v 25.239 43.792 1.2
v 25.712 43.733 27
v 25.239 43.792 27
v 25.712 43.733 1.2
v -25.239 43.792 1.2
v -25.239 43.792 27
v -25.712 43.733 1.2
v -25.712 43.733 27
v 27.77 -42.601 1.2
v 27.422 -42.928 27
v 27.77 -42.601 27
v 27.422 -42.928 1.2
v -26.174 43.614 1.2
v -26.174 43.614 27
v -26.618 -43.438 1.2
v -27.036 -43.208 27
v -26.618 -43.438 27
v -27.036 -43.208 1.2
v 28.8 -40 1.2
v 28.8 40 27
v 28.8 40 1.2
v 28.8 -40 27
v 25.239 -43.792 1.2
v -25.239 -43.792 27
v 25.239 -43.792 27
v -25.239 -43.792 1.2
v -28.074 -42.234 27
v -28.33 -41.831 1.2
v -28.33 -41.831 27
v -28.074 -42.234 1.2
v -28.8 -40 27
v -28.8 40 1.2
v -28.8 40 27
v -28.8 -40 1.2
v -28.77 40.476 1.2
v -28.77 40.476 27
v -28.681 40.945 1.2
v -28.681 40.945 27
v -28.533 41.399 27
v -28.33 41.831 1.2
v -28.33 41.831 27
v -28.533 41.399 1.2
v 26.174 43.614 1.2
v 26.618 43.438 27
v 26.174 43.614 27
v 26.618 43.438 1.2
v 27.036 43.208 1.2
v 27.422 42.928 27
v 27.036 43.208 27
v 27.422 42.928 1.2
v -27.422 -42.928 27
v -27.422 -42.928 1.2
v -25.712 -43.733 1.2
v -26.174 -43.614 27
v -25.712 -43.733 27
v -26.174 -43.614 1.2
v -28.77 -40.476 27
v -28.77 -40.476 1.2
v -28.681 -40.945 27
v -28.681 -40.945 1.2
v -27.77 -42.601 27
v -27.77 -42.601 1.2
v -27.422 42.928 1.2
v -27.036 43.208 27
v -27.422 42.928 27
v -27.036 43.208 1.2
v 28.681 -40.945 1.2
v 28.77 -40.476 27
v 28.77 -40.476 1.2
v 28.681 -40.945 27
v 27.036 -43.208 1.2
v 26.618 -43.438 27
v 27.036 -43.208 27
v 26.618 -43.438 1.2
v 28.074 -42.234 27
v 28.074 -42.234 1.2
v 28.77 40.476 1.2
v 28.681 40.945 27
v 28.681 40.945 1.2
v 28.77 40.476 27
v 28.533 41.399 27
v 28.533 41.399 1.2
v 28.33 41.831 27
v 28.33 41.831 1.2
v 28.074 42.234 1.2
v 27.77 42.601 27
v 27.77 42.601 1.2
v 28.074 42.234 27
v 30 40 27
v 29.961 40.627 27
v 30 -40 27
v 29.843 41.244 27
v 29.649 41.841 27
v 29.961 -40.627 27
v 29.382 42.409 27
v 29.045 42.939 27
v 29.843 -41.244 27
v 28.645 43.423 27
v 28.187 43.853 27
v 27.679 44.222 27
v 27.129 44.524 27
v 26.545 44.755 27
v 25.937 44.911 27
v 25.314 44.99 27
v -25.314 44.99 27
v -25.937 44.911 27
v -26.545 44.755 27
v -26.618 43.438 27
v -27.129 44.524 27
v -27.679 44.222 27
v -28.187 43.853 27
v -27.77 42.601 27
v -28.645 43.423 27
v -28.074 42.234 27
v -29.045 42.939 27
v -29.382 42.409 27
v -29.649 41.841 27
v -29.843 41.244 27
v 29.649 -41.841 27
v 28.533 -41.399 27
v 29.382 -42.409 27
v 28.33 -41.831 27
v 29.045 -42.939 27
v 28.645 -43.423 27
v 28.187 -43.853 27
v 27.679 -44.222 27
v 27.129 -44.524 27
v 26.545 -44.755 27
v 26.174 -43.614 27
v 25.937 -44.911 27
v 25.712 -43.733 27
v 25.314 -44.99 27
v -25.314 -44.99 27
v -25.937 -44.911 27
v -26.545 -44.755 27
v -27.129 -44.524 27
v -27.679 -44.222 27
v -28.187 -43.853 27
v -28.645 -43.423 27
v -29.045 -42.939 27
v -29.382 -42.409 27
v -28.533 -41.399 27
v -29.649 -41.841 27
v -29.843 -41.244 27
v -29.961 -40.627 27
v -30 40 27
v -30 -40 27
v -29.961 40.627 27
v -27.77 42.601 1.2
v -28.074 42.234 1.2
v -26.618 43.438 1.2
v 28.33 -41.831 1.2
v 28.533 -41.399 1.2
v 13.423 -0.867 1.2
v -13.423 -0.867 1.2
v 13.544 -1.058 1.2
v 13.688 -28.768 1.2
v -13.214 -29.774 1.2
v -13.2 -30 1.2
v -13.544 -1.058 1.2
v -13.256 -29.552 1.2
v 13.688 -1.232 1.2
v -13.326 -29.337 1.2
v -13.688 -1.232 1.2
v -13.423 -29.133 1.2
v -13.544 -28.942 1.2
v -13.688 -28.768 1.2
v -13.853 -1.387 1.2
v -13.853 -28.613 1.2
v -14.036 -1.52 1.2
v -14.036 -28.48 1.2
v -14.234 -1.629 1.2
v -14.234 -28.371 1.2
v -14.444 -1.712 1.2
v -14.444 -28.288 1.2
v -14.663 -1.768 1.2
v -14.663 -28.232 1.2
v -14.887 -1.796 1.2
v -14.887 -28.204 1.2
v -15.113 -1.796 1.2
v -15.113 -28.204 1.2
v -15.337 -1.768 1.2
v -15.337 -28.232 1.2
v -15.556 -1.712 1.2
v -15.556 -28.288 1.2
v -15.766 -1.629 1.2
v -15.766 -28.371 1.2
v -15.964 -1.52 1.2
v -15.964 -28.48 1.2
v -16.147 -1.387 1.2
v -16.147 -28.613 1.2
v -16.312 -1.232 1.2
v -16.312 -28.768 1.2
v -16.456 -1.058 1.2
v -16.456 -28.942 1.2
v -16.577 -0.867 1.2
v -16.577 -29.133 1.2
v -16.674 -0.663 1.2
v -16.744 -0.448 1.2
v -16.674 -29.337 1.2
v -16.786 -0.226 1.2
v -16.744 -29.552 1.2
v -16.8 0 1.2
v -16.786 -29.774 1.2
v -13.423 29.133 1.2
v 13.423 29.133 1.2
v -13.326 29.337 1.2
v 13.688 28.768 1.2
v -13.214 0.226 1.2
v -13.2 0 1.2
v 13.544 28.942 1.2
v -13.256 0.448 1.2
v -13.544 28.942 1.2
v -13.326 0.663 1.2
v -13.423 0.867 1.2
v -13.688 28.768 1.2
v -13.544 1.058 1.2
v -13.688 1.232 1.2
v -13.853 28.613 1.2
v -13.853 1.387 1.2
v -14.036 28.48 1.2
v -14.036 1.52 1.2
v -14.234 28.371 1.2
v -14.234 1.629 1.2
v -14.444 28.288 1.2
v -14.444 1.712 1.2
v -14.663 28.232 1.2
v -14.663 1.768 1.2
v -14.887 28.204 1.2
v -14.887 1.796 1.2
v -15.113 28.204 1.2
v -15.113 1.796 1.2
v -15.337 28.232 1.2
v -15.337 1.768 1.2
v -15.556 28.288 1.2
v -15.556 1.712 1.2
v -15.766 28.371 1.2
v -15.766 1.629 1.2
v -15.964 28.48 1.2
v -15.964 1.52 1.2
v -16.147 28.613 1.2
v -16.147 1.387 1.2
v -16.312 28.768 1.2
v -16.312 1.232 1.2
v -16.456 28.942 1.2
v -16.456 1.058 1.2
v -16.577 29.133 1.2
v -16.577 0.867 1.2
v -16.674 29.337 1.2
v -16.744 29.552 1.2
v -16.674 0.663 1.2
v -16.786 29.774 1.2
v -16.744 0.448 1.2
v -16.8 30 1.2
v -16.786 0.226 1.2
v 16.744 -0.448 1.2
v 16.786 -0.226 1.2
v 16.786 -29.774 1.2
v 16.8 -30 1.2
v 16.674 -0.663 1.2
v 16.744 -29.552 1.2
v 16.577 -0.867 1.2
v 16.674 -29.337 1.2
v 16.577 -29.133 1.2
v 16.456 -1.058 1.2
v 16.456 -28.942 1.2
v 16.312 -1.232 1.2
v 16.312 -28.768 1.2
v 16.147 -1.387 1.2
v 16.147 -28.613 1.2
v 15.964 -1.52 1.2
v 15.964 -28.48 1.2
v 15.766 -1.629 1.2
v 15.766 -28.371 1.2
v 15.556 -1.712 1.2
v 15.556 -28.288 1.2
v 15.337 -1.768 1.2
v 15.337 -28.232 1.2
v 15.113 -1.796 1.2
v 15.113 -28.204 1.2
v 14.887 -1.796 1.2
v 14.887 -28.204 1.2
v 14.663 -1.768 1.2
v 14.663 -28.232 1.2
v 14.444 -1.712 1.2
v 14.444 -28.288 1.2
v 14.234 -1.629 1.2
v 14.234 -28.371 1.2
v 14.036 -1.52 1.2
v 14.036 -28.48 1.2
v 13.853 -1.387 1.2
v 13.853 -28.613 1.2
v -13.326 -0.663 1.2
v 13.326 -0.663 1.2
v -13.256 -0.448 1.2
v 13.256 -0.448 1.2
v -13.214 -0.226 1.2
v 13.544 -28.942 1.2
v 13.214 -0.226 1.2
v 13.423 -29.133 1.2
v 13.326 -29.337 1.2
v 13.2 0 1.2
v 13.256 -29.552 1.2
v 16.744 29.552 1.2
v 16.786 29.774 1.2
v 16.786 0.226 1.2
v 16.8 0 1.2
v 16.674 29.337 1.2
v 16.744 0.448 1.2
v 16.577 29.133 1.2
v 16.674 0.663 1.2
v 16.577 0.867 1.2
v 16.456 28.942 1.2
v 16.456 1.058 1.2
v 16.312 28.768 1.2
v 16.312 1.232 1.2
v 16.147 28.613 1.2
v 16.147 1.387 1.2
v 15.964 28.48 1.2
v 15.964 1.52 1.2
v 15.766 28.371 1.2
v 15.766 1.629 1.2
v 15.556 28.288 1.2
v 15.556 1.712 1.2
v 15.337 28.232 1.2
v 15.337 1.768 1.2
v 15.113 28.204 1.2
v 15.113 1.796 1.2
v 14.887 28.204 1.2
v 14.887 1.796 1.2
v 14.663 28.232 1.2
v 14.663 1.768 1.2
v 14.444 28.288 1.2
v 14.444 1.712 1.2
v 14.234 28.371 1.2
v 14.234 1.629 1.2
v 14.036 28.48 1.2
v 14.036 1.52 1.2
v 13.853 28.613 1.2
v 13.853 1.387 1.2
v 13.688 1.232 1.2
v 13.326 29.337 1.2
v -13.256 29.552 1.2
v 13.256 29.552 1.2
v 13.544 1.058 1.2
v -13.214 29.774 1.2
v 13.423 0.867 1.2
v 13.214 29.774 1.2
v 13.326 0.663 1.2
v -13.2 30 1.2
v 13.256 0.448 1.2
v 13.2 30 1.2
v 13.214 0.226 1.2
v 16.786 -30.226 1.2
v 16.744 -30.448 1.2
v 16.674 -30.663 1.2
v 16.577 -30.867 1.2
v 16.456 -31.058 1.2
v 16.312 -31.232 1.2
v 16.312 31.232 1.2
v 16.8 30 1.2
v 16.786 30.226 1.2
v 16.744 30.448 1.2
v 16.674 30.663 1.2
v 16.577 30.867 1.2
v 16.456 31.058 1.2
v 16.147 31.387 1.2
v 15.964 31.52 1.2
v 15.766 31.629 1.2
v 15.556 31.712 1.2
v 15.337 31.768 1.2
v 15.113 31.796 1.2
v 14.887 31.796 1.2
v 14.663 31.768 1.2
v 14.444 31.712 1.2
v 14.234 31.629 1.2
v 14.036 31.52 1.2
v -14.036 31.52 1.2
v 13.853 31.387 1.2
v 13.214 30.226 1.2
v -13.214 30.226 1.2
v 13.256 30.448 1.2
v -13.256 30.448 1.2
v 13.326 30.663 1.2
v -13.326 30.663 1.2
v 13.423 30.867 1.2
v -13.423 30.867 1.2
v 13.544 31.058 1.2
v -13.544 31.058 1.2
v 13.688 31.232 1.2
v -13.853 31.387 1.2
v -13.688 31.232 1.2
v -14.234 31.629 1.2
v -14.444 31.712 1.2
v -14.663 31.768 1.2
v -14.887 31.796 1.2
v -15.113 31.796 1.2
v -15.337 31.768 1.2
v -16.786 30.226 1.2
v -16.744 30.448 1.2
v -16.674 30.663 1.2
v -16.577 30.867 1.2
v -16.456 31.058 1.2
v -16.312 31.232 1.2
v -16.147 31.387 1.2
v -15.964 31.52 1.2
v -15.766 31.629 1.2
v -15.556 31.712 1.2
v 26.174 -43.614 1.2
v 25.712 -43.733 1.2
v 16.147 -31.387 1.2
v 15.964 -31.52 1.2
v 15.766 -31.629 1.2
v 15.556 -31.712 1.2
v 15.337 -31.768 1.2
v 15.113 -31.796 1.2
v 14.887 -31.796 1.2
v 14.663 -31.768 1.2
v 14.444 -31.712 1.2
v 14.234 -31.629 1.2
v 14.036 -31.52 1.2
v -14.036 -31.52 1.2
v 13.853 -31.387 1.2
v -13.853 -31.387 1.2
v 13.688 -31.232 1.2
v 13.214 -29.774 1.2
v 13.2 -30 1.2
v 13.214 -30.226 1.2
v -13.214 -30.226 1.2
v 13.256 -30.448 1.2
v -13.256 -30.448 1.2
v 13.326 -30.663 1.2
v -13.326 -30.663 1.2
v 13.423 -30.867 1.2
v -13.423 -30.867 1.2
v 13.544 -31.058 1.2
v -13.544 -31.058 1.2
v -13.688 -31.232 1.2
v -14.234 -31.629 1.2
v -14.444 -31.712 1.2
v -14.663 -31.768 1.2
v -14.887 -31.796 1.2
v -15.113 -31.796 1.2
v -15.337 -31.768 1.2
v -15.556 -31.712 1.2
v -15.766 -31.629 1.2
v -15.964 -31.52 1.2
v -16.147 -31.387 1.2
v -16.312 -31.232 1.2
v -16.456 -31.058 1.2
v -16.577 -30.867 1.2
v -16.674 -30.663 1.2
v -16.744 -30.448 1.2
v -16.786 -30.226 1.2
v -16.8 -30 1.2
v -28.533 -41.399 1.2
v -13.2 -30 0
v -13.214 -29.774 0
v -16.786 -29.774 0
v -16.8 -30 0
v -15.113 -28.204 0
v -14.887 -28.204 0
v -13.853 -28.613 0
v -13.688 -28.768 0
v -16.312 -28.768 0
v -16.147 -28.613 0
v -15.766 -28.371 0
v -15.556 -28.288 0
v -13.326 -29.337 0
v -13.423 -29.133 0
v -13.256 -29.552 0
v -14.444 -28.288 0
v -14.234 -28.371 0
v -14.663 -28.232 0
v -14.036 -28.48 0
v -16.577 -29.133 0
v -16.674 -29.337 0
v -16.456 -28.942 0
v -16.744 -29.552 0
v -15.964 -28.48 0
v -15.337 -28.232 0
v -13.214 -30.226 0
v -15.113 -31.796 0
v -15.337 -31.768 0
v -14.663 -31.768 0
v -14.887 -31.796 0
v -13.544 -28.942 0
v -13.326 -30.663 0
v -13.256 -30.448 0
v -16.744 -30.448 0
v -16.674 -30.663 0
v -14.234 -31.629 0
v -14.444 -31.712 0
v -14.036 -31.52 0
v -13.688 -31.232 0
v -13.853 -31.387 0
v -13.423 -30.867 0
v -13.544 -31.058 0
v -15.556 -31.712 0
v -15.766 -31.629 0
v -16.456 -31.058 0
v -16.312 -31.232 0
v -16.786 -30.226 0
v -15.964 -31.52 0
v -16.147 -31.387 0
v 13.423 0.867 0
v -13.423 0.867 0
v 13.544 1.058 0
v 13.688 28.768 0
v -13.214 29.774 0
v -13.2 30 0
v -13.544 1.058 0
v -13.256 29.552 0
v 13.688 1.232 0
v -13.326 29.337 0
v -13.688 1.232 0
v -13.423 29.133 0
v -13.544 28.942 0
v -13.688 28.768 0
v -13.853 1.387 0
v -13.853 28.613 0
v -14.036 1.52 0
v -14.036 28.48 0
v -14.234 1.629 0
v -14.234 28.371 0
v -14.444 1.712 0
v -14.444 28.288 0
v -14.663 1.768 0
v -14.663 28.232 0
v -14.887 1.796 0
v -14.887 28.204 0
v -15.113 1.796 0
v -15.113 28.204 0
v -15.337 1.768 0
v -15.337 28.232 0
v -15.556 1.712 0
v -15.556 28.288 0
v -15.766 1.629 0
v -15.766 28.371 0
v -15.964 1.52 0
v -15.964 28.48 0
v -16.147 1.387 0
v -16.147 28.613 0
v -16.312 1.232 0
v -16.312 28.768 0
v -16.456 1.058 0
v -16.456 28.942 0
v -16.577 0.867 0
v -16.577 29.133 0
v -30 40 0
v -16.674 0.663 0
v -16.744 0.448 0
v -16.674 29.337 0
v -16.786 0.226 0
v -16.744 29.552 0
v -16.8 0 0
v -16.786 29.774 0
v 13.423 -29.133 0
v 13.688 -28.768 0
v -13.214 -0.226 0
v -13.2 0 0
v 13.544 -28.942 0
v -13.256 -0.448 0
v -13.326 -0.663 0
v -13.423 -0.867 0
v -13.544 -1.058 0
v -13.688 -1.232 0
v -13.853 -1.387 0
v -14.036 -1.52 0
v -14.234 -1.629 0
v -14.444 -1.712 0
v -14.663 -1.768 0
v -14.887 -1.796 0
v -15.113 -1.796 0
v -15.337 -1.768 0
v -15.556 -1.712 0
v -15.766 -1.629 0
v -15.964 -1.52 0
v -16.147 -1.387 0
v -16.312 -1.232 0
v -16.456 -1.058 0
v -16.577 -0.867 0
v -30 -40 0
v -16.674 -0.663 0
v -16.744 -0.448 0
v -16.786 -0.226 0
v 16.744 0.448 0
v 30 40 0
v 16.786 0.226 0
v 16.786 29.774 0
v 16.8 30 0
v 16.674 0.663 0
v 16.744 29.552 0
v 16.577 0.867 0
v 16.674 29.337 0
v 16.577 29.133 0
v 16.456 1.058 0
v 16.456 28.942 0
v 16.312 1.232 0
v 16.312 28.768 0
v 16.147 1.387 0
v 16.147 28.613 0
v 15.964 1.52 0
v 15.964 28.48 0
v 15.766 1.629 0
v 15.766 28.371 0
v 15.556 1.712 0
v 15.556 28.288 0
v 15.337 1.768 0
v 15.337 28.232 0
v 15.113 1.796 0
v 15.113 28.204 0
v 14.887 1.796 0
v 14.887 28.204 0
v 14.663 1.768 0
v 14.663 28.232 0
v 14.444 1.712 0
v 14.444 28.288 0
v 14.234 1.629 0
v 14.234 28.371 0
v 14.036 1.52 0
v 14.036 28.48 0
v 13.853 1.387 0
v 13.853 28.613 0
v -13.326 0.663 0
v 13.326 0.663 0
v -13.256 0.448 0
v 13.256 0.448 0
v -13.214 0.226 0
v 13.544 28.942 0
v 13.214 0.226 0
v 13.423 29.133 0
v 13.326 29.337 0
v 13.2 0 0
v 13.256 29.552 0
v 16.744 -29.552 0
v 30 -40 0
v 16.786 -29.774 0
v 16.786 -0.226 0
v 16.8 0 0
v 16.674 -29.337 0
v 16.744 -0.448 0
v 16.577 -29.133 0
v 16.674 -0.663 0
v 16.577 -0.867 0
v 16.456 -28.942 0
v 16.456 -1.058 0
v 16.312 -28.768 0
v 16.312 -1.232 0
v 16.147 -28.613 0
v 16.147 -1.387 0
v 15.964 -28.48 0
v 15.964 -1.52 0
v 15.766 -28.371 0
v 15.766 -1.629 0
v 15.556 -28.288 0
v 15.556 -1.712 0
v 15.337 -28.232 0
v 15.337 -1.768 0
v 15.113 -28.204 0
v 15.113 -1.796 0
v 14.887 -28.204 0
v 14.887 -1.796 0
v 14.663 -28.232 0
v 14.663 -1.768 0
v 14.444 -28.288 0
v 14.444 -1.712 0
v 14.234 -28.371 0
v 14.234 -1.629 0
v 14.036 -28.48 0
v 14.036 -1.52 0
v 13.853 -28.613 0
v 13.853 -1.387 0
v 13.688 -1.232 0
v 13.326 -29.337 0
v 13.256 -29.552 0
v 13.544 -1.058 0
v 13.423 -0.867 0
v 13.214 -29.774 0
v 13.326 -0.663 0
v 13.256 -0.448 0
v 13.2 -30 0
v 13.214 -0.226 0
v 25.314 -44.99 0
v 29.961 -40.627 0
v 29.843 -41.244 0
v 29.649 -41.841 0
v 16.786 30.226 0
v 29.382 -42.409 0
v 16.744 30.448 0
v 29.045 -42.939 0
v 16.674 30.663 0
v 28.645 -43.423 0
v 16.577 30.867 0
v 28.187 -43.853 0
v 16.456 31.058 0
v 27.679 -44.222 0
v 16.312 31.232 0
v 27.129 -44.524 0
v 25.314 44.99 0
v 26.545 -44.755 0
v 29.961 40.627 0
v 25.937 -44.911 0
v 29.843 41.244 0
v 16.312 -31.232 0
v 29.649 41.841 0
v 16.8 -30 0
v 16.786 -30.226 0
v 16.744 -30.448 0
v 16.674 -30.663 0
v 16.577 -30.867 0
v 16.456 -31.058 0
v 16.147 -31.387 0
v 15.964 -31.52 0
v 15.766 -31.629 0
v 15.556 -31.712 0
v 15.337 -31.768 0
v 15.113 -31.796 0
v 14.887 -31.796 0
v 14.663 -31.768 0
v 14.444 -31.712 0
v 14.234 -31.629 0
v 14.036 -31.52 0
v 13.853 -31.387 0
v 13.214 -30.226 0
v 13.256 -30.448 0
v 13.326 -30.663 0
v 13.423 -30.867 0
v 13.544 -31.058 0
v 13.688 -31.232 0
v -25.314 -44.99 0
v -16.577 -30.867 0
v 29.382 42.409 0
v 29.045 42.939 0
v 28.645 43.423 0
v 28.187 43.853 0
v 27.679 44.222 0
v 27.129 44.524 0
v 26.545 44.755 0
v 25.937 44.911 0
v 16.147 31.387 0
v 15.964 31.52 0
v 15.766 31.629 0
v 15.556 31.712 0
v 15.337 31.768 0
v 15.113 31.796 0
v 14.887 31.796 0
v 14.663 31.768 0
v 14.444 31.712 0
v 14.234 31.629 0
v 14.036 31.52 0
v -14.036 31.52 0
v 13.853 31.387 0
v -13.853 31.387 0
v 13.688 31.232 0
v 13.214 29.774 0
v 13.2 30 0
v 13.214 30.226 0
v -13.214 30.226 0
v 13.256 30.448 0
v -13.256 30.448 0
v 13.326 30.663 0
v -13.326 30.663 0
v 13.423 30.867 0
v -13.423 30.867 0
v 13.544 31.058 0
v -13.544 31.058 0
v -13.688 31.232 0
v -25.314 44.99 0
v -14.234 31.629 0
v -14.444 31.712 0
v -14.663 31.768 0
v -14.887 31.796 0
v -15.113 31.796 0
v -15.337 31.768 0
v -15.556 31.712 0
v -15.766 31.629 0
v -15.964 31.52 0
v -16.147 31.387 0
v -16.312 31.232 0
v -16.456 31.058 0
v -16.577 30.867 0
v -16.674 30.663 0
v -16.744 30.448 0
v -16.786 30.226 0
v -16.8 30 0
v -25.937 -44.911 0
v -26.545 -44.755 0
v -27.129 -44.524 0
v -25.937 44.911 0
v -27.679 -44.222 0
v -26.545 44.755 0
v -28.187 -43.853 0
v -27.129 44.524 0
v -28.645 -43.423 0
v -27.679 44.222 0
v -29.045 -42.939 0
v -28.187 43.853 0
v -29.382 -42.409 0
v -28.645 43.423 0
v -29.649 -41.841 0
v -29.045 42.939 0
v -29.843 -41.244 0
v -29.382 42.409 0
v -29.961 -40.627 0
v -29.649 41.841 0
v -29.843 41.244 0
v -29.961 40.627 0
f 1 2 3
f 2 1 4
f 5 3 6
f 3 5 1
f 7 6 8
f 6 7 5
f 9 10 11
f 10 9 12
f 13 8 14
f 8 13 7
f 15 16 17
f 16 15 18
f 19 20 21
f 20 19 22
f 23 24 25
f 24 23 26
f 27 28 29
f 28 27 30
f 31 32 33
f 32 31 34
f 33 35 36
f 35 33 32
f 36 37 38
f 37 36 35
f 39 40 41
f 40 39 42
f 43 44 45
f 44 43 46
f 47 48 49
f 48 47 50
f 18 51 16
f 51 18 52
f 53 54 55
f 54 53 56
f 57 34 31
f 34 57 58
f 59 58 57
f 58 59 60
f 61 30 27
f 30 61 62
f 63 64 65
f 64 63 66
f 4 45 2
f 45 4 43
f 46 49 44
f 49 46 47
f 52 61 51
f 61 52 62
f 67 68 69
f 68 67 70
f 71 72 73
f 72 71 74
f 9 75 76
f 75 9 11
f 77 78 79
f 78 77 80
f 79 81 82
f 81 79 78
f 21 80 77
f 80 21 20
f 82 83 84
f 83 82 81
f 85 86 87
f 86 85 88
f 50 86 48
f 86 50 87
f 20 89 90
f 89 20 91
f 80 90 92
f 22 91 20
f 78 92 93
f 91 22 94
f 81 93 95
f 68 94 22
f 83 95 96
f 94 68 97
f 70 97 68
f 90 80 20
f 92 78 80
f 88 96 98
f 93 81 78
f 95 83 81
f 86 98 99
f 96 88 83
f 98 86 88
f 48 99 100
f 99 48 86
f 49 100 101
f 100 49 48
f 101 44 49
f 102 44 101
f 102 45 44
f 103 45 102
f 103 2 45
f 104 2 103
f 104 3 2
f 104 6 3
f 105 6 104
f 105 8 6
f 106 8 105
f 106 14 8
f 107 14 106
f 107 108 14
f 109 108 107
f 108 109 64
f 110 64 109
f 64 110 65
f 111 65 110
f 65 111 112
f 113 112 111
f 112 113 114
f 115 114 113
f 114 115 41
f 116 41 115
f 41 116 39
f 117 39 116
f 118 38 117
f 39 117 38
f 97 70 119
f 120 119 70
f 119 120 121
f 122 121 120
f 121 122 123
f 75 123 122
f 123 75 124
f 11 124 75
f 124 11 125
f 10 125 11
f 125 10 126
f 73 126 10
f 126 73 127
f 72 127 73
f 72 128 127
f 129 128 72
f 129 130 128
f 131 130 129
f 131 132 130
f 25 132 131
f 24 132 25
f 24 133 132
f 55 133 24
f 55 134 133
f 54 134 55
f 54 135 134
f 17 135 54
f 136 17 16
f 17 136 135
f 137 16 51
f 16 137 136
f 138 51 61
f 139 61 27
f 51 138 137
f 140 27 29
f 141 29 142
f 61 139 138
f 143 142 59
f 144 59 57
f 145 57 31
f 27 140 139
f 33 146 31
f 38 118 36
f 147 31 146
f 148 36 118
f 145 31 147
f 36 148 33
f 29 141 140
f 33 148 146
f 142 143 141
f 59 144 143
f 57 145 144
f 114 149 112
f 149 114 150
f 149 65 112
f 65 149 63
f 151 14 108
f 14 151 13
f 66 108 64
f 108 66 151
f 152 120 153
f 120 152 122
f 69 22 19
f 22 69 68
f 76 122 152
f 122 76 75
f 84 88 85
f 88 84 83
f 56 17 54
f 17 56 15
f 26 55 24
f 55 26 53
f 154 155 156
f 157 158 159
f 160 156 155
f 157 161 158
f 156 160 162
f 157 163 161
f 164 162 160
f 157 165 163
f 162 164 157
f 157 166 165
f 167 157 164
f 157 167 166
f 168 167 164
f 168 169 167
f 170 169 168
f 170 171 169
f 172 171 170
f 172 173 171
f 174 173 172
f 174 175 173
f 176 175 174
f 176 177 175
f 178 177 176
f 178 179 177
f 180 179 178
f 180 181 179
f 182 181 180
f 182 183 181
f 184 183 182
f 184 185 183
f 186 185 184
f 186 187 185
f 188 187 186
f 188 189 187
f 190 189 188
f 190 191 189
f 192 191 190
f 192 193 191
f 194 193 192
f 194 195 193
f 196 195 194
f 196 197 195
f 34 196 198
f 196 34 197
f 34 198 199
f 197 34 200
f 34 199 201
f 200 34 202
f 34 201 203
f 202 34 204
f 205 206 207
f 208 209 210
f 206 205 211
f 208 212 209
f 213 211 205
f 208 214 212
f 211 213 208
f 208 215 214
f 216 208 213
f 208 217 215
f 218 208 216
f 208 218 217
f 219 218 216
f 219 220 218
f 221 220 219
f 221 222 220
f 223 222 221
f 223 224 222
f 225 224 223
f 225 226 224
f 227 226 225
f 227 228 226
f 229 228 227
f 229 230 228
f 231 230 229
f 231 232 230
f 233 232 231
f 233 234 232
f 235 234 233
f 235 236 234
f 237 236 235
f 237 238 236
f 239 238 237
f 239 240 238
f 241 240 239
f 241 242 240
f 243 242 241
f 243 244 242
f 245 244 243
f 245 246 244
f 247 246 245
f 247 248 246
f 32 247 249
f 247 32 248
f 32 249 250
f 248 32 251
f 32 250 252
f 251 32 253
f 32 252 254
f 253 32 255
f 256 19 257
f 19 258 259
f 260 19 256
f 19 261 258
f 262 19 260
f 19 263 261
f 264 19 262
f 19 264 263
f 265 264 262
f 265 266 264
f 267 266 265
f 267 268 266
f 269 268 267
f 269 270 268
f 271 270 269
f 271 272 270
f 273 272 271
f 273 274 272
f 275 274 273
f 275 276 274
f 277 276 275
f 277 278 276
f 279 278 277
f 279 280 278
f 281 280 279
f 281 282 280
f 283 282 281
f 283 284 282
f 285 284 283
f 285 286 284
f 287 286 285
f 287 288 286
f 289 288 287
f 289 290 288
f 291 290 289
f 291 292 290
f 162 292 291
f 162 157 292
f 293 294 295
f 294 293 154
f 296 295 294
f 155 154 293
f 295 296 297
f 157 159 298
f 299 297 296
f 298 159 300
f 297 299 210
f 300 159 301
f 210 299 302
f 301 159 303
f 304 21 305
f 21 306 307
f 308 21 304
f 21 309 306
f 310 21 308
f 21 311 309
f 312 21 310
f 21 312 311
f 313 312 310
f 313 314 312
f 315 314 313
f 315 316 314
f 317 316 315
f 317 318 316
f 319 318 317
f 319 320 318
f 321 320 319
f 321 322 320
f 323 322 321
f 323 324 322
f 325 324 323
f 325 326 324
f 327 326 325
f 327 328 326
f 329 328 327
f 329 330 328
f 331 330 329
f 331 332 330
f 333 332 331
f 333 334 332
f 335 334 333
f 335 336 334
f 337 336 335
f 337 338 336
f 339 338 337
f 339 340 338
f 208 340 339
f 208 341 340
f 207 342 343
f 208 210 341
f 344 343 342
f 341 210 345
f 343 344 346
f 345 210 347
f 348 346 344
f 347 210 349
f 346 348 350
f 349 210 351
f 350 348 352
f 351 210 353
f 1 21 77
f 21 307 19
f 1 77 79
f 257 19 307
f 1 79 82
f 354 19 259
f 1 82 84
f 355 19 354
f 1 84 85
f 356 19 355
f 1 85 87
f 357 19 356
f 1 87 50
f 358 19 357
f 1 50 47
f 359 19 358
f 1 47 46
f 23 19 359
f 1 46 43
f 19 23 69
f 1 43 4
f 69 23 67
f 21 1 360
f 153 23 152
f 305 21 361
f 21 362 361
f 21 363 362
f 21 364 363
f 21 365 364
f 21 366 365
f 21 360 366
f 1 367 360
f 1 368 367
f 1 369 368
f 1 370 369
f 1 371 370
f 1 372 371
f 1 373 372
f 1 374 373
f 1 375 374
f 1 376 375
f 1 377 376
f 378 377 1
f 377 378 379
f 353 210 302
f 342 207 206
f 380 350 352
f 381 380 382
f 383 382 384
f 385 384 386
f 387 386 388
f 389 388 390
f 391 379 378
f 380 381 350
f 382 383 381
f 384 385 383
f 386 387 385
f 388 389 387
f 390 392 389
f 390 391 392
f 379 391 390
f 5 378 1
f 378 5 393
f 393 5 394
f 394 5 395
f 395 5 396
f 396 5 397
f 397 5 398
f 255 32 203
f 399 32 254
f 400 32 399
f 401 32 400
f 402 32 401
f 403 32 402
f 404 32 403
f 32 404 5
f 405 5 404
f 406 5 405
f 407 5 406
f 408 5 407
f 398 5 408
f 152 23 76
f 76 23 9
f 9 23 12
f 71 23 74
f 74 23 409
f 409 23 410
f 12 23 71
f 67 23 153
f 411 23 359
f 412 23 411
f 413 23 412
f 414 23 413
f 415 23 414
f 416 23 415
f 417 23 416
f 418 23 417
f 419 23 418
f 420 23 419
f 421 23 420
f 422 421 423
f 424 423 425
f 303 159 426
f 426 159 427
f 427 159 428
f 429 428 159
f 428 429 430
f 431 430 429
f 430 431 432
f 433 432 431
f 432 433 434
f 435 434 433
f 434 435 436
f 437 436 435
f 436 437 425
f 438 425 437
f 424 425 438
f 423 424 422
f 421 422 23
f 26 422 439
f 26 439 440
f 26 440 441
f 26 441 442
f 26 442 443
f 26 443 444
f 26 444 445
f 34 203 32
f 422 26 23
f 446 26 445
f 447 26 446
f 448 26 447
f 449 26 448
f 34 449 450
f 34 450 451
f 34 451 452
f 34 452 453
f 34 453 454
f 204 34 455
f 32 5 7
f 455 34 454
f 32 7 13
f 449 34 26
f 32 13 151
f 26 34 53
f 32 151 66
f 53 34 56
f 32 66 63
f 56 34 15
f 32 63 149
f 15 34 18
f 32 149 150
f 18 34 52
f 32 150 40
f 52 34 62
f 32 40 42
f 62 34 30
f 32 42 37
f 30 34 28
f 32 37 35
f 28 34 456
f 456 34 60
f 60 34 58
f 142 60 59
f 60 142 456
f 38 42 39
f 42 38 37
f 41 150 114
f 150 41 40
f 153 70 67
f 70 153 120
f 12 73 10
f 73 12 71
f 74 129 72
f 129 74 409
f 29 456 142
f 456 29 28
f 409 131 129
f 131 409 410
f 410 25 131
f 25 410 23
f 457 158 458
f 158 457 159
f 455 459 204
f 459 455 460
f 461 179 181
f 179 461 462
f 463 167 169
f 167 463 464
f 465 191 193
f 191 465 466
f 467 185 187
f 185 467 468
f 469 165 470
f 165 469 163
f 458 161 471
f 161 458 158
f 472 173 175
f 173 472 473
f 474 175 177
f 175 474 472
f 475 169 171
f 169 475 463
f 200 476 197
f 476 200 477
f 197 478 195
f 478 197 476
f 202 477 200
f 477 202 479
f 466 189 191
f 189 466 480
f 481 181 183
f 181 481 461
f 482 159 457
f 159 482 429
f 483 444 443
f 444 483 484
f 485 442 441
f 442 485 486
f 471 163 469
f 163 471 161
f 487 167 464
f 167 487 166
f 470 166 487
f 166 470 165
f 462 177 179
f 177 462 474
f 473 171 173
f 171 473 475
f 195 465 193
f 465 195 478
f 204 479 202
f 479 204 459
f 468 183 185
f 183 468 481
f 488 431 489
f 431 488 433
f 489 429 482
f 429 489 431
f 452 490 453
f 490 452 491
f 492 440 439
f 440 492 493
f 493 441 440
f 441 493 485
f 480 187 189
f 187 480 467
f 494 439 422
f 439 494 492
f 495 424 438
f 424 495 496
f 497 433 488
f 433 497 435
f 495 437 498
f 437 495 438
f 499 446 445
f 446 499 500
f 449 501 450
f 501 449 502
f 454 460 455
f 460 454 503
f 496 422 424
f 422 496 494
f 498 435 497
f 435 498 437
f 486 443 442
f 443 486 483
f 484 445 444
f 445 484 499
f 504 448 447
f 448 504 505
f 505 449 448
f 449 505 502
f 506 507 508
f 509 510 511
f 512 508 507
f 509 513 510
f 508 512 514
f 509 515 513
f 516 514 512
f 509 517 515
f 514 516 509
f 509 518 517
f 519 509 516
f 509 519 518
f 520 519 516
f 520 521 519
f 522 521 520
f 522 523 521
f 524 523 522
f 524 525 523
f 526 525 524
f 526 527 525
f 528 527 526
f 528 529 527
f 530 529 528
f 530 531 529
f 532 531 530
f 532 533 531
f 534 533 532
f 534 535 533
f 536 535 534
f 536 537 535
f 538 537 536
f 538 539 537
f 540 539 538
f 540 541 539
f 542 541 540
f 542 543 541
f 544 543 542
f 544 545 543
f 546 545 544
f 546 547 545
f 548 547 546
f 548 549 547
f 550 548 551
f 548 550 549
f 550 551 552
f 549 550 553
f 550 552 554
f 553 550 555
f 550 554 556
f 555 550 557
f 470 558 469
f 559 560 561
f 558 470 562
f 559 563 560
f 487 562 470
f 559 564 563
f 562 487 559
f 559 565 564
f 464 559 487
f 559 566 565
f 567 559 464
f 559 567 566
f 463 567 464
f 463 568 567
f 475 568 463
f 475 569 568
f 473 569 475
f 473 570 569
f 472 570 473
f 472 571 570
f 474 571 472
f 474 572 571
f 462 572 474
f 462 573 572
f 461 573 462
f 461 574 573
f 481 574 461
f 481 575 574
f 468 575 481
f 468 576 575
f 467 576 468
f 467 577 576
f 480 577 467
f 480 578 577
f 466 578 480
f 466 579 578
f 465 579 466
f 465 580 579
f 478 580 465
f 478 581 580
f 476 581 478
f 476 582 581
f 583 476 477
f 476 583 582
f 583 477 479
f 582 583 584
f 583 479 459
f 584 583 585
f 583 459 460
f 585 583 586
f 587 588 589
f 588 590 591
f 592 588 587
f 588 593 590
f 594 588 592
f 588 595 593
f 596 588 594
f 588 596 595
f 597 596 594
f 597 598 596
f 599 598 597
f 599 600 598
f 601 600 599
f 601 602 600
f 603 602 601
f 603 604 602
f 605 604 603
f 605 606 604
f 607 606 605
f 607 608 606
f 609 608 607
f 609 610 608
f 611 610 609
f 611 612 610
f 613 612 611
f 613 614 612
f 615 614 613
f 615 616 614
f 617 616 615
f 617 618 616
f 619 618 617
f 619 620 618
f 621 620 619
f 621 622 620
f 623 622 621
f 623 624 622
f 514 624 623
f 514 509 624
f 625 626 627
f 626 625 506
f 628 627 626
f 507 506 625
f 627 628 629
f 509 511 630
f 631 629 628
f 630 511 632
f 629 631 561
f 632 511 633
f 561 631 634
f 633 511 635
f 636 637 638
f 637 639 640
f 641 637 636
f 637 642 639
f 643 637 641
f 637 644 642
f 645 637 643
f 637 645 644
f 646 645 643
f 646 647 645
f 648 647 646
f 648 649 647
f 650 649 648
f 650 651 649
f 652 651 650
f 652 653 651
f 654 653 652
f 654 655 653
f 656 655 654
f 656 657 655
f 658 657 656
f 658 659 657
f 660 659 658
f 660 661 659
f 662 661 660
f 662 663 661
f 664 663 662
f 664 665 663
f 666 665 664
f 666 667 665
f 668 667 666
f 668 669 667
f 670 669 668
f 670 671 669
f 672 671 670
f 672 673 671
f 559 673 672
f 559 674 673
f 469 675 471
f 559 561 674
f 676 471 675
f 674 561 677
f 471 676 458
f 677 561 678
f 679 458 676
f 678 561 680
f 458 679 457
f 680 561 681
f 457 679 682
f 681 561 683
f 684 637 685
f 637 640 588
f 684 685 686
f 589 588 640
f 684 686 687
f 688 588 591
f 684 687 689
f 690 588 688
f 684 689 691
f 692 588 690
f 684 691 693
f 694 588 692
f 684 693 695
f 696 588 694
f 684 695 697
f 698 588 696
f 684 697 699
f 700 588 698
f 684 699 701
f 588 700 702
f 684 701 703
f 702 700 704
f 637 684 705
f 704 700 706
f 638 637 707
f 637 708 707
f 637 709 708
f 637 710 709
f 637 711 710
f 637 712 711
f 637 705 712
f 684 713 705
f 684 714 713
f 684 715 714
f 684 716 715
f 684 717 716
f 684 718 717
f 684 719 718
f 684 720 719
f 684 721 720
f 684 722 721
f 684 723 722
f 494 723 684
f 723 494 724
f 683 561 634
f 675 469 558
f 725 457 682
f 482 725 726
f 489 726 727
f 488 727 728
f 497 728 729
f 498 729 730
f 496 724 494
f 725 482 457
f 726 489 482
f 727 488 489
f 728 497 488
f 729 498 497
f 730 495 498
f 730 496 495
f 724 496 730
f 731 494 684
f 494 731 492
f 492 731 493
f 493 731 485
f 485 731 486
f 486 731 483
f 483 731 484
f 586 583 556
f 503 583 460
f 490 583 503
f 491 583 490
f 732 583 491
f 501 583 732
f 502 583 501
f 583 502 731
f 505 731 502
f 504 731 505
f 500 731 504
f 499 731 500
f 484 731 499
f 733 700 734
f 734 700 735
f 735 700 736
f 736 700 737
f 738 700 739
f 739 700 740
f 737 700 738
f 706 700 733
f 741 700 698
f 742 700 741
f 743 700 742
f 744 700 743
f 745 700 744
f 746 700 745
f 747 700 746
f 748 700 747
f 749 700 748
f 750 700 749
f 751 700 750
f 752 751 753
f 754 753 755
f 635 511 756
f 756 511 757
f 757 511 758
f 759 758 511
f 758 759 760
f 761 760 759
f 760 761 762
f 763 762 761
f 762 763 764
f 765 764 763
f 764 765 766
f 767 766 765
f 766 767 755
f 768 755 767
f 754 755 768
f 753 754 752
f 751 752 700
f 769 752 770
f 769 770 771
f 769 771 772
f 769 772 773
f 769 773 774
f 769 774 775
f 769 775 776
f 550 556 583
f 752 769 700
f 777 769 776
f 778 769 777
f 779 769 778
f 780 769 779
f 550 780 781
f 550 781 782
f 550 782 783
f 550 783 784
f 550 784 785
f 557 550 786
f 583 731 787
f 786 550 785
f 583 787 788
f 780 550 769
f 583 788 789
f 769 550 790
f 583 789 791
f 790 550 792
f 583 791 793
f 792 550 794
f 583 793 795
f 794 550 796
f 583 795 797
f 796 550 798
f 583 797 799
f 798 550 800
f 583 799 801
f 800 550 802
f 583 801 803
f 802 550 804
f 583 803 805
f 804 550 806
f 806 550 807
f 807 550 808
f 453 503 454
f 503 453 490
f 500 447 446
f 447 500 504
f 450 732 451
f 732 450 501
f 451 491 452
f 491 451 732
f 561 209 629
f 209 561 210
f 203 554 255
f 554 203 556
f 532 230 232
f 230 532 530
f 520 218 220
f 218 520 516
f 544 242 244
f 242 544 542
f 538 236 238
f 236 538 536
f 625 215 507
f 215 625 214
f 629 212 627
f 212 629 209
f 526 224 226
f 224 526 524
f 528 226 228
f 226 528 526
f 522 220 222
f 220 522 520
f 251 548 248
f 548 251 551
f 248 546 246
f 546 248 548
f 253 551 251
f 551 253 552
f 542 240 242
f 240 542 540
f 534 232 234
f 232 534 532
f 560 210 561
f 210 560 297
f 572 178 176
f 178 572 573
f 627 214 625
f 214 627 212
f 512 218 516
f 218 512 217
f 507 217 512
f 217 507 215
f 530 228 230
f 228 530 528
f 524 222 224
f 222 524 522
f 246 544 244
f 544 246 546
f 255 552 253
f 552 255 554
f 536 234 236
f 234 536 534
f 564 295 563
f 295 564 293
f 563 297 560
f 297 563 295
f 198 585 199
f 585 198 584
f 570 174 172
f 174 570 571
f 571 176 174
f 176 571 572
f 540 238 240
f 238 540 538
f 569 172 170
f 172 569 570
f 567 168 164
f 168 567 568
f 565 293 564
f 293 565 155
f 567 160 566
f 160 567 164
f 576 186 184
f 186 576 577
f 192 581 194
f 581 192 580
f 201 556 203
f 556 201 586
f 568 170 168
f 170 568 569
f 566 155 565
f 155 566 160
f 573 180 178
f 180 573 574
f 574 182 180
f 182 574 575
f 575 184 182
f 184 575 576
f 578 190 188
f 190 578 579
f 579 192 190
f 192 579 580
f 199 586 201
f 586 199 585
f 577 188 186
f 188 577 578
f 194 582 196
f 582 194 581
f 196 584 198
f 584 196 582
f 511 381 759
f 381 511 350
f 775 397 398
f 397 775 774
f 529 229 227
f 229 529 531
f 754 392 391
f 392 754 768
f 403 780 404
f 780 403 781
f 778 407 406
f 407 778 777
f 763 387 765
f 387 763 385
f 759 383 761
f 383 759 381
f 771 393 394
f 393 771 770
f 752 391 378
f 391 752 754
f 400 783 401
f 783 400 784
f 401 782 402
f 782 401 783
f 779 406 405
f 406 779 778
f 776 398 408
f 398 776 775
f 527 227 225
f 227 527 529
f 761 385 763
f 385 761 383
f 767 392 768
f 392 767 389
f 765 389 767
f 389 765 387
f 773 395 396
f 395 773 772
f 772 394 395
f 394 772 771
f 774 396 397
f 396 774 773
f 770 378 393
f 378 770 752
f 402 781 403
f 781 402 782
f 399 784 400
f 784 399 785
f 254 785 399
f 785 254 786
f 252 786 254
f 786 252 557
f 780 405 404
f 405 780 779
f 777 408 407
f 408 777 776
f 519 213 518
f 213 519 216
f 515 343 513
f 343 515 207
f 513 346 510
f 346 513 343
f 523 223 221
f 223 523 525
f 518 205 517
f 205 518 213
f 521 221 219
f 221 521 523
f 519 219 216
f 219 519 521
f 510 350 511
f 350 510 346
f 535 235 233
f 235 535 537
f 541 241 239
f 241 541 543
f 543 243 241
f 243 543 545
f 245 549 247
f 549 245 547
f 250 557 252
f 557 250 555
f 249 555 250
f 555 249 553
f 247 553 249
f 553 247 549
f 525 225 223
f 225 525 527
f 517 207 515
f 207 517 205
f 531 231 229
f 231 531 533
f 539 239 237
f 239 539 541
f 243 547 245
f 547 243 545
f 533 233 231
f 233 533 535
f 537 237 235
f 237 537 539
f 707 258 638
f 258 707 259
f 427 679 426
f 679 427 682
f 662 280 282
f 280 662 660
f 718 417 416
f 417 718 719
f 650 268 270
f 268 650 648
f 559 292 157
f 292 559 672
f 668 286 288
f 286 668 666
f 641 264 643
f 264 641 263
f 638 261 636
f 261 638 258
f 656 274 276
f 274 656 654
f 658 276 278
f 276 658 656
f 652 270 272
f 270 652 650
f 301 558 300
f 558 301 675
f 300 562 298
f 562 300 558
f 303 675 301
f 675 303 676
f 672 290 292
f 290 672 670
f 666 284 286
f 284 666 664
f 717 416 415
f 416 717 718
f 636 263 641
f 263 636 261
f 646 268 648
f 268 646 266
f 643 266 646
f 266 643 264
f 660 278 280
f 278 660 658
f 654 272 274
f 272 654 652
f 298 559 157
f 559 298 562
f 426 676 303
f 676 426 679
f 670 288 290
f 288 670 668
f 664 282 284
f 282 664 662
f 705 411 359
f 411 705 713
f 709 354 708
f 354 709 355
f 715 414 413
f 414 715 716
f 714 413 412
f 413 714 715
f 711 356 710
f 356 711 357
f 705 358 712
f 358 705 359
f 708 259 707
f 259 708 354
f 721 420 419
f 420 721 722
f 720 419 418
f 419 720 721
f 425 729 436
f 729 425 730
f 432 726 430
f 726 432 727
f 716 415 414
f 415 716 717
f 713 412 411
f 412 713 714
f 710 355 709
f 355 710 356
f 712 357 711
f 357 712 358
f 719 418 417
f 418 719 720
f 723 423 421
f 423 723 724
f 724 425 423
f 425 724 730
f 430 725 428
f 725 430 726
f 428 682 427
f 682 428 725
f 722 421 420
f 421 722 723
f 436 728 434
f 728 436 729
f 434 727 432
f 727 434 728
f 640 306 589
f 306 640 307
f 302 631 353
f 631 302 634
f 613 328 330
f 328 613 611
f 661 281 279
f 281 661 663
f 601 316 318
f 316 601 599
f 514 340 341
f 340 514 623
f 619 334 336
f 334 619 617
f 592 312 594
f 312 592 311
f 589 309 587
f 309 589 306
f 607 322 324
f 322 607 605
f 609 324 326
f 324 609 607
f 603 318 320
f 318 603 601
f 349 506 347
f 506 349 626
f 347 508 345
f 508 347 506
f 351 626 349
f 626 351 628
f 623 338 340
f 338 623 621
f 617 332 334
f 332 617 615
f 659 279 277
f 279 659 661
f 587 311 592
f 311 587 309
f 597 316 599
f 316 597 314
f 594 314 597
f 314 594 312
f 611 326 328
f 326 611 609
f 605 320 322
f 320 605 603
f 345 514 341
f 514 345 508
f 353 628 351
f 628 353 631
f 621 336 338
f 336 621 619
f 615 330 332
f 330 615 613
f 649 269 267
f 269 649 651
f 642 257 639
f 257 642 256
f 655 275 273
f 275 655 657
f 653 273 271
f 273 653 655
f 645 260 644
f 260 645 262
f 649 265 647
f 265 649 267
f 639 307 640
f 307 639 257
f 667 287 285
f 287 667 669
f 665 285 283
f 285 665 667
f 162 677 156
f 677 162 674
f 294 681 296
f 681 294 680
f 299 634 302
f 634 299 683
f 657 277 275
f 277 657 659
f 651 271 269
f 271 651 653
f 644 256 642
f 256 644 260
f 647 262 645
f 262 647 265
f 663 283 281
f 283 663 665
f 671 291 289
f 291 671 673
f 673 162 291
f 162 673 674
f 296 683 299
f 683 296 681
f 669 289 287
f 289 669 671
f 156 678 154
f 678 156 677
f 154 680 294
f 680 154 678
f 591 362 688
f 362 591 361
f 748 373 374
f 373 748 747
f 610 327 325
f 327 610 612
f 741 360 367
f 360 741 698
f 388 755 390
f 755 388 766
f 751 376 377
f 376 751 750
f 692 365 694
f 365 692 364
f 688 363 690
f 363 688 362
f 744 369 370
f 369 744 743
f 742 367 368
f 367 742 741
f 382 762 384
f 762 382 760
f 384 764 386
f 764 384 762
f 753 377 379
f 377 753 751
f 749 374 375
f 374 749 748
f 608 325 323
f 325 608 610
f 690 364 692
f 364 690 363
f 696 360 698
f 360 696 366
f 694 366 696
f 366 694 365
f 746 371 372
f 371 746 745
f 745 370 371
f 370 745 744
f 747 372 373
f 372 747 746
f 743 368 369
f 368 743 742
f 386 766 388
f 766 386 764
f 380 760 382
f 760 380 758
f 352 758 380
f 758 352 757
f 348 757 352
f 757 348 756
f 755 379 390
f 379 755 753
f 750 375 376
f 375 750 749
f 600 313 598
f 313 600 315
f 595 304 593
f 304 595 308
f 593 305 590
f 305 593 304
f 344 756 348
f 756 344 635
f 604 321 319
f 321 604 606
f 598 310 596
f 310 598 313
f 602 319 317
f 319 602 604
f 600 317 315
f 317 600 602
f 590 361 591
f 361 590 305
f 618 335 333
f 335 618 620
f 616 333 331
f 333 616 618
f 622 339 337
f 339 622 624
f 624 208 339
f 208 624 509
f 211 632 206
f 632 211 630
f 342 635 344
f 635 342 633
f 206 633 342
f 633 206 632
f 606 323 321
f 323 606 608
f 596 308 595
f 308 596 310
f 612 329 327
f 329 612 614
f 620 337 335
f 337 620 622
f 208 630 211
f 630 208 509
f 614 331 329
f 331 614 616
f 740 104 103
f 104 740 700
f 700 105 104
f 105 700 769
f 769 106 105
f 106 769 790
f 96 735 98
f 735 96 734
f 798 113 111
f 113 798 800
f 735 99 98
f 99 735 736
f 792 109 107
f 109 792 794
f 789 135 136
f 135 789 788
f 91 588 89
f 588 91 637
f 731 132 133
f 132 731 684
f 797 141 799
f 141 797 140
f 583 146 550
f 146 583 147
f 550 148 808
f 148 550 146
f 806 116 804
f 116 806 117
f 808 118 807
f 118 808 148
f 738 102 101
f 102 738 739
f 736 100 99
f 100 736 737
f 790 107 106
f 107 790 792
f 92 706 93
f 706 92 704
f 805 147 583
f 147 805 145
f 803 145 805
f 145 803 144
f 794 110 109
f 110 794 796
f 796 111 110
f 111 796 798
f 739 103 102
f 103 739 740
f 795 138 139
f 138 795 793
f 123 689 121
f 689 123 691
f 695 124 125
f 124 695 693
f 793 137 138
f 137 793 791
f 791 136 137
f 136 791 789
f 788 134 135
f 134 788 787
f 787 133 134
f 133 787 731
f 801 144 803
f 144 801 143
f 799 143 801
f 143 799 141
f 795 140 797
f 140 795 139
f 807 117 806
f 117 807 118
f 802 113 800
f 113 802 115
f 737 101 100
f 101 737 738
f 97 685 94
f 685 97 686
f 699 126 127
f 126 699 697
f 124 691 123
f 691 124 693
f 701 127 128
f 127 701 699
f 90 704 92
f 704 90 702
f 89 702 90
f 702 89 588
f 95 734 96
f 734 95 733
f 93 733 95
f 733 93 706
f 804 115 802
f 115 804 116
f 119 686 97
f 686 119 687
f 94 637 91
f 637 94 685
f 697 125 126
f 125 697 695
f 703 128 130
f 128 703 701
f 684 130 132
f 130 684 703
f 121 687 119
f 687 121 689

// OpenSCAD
$fn = 50;


difference() {
	union() {
		hull() {
			translate(v = [-25.0000000000, 40.0000000000, 0]) {
				cylinder(h = 27, r = 5);
			}
			translate(v = [25.0000000000, 40.0000000000, 0]) {
				cylinder(h = 27, r = 5);
			}
			translate(v = [-25.0000000000, -40.0000000000, 0]) {
				cylinder(h = 27, r = 5);
			}
			translate(v = [25.0000000000, -40.0000000000, 0]) {
				cylinder(h = 27, r = 5);
			}
		}
	}
	union() {
		translate(v = [0, 0, 1.2000000000]) {
			hull() {
				translate(v = [-25.0000000000, 40.0000000000, 0]) {
					cylinder(h = 25.8000000000, r = 3.8000000000);
				}
				translate(v = [25.0000000000, 40.0000000000, 0]) {
					cylinder(h = 25.8000000000, r = 3.8000000000);
				}
				translate(v = [-25.0000000000, -40.0000000000, 0]) {
					cylinder(h = 25.8000000000, r = 3.8000000000);
				}
				translate(v = [25.0000000000, -40.0000000000, 0]) {
					cylinder(h = 25.8000000000, r = 3.8000000000);
				}
			}
		}
		#translate(v = [-15.0000000000, -30.0000000000, 0]) {
			cylinder(h = 1.2000000000, r = 1.8000000000);
		}
		#translate(v = [-15.0000000000, 0.0000000000, 0]) {
			cylinder(h = 1.2000000000, r = 1.8000000000);
		}
		#translate(v = [-15.0000000000, 30.0000000000, 0]) {
			cylinder(h = 1.2000000000, r = 1.8000000000);
		}
		#translate(v = [15.0000000000, -30.0000000000, 0]) {
			cylinder(h = 1.2000000000, r = 1.8000000000);
		}
		#translate(v = [15.0000000000, 0.0000000000, 0]) {
			cylinder(h = 1.2000000000, r = 1.8000000000);
		}
		#translate(v = [15.0000000000, 30.0000000000, 0]) {
			cylinder(h = 1.2000000000, r = 1.8000000000);
		}
	}
}
